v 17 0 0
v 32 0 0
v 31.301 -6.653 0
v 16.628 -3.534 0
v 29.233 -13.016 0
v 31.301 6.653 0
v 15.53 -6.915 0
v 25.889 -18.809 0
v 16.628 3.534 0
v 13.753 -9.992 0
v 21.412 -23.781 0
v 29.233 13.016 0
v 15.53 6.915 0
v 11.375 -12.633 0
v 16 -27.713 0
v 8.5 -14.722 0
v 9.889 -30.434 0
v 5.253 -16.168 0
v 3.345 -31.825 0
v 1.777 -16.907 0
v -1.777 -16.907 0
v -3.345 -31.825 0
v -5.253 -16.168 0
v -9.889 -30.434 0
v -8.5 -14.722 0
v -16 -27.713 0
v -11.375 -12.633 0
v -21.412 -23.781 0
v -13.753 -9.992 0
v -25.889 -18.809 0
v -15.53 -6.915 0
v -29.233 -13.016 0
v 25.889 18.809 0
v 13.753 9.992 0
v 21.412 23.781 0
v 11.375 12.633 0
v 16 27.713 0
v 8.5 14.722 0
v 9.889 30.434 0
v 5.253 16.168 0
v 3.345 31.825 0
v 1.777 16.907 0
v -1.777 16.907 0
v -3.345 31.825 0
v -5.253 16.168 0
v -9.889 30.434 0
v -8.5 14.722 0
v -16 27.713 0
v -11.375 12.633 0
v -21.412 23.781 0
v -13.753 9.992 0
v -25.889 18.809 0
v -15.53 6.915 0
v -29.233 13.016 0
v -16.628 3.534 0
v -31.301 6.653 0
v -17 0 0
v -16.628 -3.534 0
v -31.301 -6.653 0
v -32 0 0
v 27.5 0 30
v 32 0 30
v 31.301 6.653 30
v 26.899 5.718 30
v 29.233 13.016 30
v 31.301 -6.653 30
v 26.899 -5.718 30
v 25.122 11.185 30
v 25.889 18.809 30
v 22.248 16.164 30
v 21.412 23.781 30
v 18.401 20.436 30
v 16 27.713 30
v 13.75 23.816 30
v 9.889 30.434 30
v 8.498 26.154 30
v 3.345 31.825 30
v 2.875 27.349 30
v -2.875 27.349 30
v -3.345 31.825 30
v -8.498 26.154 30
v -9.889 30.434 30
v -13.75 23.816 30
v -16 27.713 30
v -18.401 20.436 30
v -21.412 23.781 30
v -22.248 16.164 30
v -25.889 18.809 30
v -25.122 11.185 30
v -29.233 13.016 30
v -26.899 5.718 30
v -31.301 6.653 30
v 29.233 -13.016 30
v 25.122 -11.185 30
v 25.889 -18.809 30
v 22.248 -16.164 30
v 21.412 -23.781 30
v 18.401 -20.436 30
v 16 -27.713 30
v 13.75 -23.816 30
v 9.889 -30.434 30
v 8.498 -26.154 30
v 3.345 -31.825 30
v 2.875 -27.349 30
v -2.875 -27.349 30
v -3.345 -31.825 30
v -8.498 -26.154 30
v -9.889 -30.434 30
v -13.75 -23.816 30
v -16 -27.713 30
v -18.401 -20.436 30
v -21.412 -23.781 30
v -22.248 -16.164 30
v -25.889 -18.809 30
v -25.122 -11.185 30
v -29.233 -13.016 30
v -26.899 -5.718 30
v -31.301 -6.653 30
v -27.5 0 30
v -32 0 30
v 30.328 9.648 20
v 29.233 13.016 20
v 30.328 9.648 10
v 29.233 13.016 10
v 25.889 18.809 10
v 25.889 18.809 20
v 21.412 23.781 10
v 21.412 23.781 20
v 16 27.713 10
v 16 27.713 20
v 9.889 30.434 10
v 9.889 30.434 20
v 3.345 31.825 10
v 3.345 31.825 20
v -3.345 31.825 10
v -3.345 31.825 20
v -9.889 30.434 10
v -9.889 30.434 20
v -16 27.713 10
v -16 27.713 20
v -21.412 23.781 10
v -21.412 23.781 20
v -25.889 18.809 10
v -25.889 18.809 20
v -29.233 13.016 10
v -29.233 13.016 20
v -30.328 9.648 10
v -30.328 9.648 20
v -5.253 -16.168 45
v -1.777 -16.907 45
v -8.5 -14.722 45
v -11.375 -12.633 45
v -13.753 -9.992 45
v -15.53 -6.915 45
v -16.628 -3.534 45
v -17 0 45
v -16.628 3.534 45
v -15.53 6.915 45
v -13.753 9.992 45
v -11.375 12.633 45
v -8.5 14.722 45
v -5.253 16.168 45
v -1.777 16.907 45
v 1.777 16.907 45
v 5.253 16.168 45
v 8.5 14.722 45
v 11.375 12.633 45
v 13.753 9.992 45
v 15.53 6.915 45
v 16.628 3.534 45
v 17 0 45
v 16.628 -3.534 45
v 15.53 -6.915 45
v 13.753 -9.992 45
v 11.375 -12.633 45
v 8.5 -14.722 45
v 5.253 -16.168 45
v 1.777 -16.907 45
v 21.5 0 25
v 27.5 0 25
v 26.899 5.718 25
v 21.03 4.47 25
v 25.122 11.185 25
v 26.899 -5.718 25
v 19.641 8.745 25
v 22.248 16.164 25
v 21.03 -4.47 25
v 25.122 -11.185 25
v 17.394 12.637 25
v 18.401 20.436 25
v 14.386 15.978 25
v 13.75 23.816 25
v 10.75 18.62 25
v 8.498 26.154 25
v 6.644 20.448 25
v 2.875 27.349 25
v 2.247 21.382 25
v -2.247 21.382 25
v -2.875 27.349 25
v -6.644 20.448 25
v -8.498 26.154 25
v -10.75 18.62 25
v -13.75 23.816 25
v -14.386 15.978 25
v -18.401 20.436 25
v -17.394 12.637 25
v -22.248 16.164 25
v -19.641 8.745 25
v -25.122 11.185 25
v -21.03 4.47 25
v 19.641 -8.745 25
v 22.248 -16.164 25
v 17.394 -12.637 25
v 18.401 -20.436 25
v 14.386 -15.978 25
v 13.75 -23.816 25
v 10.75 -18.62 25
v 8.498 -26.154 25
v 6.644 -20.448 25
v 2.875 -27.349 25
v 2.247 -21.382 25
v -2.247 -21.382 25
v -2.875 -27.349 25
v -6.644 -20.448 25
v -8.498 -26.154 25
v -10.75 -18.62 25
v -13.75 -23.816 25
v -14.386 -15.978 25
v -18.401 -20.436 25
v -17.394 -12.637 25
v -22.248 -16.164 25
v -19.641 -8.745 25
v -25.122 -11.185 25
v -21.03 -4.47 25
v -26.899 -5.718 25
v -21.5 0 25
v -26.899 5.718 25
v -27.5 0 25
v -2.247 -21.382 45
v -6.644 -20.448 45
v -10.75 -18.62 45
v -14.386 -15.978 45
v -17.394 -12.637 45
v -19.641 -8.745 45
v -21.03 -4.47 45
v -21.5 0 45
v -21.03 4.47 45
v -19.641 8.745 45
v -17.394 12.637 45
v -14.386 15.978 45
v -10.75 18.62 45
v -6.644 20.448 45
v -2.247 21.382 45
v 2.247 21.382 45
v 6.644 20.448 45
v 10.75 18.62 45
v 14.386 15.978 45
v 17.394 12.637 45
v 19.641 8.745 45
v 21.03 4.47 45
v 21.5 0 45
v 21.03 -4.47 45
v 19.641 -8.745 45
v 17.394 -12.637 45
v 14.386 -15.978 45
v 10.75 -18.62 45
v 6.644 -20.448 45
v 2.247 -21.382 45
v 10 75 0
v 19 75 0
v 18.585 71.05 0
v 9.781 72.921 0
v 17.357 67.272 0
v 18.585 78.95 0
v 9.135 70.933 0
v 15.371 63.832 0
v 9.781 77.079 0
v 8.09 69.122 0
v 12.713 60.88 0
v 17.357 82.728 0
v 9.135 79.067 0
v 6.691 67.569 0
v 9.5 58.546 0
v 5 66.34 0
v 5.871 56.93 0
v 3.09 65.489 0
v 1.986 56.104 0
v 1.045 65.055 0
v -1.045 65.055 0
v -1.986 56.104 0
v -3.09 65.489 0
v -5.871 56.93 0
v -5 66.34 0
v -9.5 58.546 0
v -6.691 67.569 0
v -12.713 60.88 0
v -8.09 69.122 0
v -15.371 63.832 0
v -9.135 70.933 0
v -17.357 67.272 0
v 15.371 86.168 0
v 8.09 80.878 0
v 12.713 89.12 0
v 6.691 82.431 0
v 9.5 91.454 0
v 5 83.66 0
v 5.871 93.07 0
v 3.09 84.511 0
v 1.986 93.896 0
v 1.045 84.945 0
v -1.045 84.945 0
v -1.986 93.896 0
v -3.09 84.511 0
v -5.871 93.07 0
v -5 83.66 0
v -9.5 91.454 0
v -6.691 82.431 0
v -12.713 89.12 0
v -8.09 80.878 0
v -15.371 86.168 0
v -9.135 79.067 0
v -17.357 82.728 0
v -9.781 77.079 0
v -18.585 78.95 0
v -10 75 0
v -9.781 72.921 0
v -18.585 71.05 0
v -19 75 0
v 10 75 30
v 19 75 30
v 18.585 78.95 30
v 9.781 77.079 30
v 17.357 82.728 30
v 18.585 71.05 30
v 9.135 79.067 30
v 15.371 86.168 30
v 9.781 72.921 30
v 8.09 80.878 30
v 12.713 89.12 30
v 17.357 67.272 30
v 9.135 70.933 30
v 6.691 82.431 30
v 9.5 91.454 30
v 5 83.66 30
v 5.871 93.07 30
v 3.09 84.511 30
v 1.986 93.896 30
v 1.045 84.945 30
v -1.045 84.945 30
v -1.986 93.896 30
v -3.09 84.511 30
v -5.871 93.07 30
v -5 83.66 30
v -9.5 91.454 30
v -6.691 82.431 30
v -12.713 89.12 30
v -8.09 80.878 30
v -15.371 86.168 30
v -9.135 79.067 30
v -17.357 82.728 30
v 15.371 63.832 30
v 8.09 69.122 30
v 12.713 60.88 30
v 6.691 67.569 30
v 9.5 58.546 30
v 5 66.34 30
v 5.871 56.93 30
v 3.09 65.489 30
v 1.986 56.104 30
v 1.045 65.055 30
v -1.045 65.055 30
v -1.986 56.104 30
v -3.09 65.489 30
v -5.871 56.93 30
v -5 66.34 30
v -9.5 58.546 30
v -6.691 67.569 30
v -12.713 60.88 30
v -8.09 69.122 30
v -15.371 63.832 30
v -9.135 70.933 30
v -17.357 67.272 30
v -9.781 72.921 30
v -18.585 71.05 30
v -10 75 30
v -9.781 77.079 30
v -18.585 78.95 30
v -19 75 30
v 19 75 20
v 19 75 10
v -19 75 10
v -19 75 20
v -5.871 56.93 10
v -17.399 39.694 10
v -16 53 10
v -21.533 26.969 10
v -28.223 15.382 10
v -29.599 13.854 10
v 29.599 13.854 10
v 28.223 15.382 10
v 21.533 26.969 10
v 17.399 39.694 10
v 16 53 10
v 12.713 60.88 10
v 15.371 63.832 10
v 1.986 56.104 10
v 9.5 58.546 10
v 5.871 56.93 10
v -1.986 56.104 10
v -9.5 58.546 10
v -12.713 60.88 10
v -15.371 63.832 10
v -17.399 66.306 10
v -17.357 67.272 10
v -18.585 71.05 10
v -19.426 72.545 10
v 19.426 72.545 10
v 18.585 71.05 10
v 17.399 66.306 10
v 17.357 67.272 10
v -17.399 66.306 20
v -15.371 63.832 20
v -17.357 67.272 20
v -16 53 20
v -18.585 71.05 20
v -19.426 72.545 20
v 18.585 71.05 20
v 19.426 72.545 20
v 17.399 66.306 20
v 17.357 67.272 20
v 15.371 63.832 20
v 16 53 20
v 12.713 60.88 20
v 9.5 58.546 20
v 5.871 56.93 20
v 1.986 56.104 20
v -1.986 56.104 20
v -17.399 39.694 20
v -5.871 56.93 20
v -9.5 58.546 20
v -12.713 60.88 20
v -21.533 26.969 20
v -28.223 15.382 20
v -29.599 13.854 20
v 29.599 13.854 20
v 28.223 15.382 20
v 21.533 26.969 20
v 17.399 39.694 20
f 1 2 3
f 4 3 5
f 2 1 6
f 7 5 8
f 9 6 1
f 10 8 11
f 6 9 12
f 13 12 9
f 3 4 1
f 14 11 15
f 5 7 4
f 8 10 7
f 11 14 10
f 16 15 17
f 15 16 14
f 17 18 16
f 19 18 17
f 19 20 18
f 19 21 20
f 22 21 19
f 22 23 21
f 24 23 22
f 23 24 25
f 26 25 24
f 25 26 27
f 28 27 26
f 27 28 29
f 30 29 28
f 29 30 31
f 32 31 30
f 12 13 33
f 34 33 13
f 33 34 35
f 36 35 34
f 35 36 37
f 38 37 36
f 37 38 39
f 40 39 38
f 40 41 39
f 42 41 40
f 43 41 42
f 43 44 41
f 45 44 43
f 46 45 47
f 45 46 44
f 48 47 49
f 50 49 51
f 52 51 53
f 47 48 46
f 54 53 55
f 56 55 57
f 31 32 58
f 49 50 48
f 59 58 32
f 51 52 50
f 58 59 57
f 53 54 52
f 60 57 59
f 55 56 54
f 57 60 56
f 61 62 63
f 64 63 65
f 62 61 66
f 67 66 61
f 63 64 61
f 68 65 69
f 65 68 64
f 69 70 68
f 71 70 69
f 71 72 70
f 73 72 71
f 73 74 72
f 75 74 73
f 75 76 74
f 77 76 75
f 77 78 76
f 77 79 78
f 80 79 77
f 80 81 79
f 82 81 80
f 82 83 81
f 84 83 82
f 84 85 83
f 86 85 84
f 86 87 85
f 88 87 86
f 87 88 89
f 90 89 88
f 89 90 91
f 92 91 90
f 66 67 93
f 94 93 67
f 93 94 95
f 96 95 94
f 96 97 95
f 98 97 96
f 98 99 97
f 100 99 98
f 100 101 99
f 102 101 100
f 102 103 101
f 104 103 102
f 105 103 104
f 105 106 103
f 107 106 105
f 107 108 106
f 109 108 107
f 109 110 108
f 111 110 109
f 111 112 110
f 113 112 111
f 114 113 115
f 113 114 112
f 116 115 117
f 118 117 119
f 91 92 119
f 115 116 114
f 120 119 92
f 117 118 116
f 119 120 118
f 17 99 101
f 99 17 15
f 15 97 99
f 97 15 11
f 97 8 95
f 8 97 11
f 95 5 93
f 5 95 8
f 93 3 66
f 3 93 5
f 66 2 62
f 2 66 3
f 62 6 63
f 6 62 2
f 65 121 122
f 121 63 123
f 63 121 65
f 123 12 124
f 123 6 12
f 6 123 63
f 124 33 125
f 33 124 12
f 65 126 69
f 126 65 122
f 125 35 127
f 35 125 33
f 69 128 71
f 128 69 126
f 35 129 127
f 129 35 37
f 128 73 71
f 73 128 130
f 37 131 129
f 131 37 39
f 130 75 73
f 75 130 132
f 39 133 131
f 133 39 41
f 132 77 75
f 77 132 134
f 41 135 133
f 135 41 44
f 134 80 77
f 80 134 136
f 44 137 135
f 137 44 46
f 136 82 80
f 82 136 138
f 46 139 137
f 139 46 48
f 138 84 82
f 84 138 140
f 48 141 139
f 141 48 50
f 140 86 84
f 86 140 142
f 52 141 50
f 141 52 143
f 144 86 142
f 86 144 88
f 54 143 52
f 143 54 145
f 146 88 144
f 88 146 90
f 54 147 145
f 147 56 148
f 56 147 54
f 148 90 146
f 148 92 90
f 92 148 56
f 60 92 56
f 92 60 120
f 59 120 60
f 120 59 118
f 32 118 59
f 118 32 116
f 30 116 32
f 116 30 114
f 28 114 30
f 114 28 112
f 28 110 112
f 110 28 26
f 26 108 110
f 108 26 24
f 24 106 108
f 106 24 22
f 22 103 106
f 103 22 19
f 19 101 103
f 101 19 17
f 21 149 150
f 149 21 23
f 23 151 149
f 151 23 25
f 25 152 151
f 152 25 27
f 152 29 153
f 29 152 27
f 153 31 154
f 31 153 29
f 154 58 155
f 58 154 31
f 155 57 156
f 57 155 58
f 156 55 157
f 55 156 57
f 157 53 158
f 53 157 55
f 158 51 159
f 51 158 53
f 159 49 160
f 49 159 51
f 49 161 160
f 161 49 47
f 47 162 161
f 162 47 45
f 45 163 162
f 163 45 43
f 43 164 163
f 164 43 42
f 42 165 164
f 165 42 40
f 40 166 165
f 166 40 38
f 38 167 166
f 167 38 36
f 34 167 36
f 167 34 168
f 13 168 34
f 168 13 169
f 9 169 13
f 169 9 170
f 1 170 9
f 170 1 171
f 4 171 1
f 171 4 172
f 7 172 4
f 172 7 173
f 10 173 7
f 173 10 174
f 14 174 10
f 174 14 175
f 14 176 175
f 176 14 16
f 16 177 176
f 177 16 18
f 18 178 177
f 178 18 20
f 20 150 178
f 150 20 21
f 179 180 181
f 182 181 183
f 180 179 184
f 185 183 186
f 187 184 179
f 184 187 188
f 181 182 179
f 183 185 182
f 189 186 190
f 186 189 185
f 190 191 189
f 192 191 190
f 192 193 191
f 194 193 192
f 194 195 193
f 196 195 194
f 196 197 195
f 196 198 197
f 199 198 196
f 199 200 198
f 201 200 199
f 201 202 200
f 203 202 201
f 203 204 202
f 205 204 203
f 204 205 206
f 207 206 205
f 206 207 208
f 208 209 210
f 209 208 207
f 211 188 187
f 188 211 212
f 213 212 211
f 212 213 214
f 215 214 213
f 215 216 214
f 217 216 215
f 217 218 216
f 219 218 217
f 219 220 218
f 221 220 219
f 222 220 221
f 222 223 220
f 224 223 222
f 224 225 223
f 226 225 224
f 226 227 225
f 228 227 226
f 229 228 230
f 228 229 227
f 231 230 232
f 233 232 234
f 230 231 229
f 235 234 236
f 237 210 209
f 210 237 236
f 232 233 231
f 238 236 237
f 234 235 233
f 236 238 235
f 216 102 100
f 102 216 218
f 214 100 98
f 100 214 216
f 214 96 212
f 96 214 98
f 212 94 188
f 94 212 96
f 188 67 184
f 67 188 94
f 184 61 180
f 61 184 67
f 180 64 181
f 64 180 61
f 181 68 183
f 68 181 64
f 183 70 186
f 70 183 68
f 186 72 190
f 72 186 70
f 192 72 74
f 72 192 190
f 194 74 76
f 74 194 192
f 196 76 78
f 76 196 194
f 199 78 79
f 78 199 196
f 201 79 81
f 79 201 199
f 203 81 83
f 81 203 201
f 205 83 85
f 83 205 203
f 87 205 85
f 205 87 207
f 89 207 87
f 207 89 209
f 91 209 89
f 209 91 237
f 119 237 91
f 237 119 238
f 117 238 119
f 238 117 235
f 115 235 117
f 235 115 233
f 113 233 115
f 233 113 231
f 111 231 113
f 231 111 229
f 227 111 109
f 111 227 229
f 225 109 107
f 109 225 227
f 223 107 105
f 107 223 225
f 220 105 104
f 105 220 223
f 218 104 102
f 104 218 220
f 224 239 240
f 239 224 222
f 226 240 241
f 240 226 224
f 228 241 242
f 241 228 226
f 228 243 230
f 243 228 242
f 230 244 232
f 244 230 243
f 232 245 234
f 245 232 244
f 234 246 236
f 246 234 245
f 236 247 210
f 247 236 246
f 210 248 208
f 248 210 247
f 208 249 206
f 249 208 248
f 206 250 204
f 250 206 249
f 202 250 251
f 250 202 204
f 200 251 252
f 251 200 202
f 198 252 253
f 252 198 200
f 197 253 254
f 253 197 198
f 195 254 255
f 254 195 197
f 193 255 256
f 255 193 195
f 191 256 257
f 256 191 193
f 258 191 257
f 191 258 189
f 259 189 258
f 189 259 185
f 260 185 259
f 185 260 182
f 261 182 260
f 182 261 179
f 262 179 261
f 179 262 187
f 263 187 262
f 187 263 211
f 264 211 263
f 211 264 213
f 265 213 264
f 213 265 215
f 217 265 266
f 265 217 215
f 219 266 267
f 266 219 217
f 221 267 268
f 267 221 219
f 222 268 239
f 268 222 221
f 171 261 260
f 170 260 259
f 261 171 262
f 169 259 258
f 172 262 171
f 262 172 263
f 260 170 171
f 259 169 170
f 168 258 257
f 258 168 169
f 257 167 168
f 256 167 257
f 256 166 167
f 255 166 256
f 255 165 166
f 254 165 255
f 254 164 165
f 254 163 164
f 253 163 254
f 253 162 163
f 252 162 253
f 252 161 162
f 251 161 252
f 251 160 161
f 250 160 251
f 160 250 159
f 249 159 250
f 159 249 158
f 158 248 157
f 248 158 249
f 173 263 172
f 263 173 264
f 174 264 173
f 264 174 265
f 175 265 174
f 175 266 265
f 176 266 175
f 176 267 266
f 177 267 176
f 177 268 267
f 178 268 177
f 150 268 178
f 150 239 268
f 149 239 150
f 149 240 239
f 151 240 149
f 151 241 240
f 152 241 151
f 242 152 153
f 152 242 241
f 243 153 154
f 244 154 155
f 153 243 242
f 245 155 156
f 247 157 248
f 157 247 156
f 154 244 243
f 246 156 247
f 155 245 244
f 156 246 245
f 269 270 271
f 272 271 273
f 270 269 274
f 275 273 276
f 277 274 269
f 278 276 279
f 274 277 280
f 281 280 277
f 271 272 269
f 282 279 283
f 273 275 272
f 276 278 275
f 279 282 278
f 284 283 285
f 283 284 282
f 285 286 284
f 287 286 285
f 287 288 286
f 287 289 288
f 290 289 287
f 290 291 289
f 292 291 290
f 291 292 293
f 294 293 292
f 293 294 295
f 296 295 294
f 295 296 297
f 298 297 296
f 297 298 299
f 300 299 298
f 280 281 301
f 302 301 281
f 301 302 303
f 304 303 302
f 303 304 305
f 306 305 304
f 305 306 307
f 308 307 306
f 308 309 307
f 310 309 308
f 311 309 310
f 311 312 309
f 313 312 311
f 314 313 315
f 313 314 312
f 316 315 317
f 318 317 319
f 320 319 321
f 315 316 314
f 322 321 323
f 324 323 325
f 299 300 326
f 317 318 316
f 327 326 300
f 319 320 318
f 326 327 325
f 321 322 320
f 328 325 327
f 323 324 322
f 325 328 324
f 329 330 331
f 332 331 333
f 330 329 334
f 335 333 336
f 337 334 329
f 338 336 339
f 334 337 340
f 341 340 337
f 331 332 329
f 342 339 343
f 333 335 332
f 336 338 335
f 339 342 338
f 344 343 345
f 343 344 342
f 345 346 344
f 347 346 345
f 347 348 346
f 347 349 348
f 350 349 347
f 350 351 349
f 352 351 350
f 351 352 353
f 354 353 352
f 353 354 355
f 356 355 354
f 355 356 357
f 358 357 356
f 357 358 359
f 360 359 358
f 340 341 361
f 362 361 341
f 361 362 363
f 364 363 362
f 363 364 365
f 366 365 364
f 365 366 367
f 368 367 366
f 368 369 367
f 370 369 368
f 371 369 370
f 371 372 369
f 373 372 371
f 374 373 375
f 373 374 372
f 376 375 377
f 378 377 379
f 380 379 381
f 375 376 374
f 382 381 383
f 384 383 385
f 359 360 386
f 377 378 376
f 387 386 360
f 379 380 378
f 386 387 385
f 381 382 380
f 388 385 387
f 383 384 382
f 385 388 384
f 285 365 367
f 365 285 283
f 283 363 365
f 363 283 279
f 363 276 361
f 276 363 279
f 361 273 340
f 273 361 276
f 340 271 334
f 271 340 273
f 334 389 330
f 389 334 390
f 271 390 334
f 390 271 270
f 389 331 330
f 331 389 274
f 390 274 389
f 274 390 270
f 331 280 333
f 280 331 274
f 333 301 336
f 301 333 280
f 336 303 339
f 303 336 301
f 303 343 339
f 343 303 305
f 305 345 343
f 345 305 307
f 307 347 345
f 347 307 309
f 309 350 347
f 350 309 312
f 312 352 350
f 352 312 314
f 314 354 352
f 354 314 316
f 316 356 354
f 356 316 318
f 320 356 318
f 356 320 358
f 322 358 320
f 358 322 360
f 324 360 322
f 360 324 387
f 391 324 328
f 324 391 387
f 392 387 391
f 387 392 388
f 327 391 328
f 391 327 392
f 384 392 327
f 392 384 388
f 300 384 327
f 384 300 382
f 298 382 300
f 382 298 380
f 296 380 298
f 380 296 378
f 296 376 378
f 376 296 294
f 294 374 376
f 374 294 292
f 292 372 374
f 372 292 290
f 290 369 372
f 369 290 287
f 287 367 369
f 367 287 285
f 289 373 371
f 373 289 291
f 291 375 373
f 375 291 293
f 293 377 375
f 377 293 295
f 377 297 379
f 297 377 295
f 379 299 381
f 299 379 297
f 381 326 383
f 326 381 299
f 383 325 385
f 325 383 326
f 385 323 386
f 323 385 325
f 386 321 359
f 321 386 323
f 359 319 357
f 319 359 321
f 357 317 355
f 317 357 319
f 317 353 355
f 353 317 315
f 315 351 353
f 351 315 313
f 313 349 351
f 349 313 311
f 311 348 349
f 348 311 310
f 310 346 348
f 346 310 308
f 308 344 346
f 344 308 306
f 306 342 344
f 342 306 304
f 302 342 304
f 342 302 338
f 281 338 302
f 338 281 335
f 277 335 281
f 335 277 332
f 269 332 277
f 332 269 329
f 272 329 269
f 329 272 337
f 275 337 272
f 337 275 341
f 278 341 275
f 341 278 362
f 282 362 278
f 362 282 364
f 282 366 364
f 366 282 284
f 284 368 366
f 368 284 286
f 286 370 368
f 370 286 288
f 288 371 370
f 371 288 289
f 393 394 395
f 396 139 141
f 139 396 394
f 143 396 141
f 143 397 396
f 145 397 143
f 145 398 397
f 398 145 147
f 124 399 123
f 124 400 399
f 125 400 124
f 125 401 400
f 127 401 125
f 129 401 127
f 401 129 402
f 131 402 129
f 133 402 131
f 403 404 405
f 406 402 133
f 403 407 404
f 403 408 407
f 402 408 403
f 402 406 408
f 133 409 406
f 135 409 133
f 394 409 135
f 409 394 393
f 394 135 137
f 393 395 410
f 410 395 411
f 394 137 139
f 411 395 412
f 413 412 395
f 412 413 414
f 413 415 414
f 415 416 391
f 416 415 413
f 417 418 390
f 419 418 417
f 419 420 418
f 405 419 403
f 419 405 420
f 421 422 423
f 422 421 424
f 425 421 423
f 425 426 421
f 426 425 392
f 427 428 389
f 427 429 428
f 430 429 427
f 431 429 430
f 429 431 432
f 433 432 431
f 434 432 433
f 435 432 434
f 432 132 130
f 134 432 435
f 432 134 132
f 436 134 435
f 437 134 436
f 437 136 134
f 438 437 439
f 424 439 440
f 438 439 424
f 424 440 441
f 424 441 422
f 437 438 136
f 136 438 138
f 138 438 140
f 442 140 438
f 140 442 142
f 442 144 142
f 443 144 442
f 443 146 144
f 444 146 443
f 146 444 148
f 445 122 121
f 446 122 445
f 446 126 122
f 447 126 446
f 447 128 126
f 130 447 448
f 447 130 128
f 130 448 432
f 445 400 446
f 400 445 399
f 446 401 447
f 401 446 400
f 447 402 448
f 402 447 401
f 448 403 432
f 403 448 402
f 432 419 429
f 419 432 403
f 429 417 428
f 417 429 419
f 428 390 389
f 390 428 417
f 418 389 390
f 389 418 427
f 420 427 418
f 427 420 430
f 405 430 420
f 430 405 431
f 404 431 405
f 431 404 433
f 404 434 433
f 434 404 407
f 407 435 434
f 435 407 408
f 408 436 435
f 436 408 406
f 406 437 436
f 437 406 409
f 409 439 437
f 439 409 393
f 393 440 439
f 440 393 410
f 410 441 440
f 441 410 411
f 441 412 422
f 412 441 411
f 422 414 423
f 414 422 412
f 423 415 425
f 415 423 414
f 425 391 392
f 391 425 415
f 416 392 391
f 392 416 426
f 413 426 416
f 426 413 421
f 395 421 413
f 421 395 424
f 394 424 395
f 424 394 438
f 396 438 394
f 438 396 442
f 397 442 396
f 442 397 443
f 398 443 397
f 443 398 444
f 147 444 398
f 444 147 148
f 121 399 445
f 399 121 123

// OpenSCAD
union() {
    difference() {
        linear_extrude(30)
        difference() {
            circle(64/2);
            circle(34/2);
        }

        translate([0,0,30-5])
        linear_extrude(5)
        difference() {
            circle(55/2);
            circle(43/2);
        }
    }

    linear_extrude(30+15)
    difference() {
        circle(43/2);
        circle(34/2);
    }
}

linear_extrude(30)
translate([0,75])
difference() {
    circle(38/2);
    circle(20/2);
}

translate([0,0,10])
linear_extrude(10)
difference() {
    polygon([[32,0],[19,75],[-19,75],[-32,0]]);
    circle(64/2);
    translate([0,75]) circle(38/2);
    translate([38/2+64-3, 75-22]) circle(64);
    translate([-(38/2+64-3), 75-22]) circle(64);
}
